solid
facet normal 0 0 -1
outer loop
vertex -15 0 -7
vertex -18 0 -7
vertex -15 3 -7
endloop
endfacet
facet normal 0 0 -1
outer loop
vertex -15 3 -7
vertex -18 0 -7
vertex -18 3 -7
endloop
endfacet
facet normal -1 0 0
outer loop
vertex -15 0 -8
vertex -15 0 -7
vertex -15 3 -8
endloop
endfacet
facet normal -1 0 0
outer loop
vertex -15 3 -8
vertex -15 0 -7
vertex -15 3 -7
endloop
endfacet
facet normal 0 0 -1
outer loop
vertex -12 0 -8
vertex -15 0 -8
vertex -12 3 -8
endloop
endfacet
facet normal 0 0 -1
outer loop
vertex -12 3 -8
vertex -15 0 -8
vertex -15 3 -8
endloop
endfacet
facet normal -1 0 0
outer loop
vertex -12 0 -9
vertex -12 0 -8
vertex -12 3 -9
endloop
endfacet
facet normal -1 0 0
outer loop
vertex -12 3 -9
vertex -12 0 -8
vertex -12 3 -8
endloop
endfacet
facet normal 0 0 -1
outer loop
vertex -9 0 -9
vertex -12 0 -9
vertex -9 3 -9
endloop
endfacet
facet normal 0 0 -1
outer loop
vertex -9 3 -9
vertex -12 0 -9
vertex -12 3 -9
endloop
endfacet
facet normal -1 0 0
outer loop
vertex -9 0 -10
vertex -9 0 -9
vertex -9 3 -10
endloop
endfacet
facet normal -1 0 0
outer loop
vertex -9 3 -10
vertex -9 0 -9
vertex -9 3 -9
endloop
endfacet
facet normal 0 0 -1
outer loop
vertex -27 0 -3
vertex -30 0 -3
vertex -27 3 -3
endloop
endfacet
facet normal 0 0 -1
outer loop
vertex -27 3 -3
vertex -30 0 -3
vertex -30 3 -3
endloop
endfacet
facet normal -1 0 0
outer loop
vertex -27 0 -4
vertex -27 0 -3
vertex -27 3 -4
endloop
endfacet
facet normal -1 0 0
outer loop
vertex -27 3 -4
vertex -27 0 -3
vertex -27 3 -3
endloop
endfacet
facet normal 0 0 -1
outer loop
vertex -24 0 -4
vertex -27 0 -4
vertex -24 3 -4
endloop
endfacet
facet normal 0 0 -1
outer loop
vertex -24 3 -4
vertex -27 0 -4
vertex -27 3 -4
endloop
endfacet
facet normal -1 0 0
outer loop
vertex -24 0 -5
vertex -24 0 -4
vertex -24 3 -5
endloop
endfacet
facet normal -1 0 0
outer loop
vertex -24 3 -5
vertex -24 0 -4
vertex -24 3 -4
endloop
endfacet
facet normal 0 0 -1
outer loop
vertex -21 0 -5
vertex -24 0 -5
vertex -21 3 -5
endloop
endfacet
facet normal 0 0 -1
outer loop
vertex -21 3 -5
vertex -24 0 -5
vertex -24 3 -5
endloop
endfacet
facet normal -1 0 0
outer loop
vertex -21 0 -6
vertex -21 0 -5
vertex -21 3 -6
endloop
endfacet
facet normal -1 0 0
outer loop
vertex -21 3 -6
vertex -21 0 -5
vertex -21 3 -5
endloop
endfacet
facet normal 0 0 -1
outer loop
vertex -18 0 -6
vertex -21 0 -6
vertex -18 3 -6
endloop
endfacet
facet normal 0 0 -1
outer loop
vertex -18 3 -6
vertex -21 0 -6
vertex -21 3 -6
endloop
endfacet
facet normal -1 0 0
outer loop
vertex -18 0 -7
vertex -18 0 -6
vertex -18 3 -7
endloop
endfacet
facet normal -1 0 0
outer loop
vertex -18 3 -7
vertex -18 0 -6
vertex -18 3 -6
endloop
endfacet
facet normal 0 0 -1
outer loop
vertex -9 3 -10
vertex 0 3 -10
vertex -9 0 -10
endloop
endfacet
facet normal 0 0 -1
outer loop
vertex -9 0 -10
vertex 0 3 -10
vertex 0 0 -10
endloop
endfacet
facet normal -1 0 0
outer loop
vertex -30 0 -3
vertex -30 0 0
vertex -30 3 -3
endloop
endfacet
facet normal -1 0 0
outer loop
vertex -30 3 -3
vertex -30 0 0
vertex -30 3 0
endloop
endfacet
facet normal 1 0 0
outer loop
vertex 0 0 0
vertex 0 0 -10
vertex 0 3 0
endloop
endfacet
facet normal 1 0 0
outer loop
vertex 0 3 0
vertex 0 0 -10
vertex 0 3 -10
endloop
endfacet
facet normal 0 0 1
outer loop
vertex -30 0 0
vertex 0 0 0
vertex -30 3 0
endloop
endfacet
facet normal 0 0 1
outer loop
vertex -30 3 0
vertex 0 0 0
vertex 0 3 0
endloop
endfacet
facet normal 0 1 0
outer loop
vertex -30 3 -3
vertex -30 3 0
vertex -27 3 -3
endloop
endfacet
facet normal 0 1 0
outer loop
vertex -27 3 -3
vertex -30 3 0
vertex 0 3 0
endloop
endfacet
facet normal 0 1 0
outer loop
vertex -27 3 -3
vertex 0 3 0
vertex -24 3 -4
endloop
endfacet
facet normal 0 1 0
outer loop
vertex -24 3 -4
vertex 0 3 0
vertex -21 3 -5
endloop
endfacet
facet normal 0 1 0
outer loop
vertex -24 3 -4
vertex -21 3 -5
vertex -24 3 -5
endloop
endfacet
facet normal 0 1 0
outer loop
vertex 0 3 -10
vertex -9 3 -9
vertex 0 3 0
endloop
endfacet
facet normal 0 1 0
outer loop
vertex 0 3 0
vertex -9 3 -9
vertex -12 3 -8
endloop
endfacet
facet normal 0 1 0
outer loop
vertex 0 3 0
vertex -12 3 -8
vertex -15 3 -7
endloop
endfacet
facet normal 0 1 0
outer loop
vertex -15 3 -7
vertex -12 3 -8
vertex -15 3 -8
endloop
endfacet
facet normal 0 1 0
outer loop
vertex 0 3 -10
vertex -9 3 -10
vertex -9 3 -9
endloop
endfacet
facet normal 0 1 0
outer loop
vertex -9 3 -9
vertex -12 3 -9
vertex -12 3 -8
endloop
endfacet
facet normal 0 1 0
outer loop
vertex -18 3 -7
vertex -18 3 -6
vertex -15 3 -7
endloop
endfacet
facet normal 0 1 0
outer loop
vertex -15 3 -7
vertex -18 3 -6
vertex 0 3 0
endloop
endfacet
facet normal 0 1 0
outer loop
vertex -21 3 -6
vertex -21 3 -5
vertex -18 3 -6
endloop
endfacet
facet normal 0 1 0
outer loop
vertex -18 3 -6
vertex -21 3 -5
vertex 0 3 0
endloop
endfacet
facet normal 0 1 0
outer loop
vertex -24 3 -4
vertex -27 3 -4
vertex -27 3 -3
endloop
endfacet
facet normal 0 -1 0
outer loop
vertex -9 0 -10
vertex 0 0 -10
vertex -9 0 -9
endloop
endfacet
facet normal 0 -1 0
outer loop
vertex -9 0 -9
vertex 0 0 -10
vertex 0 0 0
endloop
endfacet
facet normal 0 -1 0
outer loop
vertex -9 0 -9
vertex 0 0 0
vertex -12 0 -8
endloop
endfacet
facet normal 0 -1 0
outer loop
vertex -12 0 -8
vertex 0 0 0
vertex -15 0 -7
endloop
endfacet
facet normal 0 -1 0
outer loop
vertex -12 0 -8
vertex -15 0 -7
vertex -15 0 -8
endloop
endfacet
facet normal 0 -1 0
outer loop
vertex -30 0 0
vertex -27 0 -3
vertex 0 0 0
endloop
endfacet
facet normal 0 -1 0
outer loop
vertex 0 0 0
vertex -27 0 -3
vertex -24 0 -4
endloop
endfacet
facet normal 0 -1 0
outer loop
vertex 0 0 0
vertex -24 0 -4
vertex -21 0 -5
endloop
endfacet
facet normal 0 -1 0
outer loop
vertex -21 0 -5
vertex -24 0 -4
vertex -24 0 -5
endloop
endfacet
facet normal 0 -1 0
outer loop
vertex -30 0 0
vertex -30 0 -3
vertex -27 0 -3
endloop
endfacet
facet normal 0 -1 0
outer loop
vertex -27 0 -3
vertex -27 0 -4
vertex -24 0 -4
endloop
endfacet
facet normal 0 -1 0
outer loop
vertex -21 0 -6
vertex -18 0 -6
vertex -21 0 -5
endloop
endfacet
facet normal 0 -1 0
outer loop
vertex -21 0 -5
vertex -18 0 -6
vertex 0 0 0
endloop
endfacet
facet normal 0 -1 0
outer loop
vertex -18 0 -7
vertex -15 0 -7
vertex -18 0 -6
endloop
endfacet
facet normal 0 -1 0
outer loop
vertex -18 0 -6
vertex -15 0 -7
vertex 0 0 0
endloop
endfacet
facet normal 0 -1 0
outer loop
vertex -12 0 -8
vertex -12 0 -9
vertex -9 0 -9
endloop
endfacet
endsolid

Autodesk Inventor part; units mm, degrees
ref_plane "YZ Plane" through (0, 0, 0) normal (1, 0, 0) x (0, 1, 0)
ref_plane "XZ Plane" through (0, 0, 0) normal (0, 1, 0) x (-1, 0, 0)
ref_plane "XY Plane" through (0, 0, 0) normal (0, 0, 1) x (1, 0, 0)
sketch "Sketch1" plane through (0, 0, 0) normal (0, 1, 0) x (-1, 0, 0)
  line L0 (0, 0) -> (30, 0)
  line L1 (30, 0) -> (30, -10)
  line L2 (30, -10) -> (0, -10)
  line L3 (0, -10) -> (0, 0)
  dimension "d0" = 30
  dimension "d1" = 10
extrude "Extrusion1" add sketch "Sketch1" along normal blind 3
sketch "Sketch2" plane through (0, 3, 0) normal (0, 1, 0) x (1, 0, 0)
  line L0 (-30, 3) -> (-27, 3)
  line L1 (-27, 3) -> (-27, 4)
  line L2 (-27, 4) -> (-24, 4)
  line L3 (-24, 4) -> (-24, 5)
  line L4 (-24, 5) -> (-21, 5)
  line L5 (-21, 5) -> (-21, 6)
  line L6 (-21, 6) -> (-18, 6)
  line L7 (-18, 6) -> (-18, 7)
  line L8 (-18, 7) -> (-15, 7)
  line L9 (-15, 7) -> (-15, 8)
  line L10 (-15, 8) -> (-12, 8)
  line L11 (-12, 8) -> (-12, 9)
  line L12 (-12, 9) -> (-9, 9)
  line L13 (-9, 9) -> (-9, 10)
  line L14 (-9, 10) -> (-1.5529, 10)
  line L15 (-1.5529, 10) -> (-1.5529, 20)
  line L16 (-1.5529, 20) -> (-30, 20)
  line L17 (-30, 20) -> (-30, 3)
  line L18 (-30, 0) -> (0, 0) projected
  line L19 (-30, 10) -> (-30, 0) projected
  dimension "d4" = 3
  dimension "d5" = 3
  dimension "d6" = 3
  dimension "d7" = 3
  dimension "d8" = 3
  dimension "d9" = 3
  dimension "d10" = 1
  dimension "d11" = 1
  dimension "d12" = 1
  dimension "d13" = 1
  dimension "d14" = 1
  dimension "d15" = 1
  dimension "d16" = 3
  dimension "d17" = 1
  dimension "d18" = 3
  dimension "d19" = 10
  dimension "d20" = 28.4471
extrude "Extrusion2" cut sketch "Sketch2" against normal through all
properties part number "TRUC"
